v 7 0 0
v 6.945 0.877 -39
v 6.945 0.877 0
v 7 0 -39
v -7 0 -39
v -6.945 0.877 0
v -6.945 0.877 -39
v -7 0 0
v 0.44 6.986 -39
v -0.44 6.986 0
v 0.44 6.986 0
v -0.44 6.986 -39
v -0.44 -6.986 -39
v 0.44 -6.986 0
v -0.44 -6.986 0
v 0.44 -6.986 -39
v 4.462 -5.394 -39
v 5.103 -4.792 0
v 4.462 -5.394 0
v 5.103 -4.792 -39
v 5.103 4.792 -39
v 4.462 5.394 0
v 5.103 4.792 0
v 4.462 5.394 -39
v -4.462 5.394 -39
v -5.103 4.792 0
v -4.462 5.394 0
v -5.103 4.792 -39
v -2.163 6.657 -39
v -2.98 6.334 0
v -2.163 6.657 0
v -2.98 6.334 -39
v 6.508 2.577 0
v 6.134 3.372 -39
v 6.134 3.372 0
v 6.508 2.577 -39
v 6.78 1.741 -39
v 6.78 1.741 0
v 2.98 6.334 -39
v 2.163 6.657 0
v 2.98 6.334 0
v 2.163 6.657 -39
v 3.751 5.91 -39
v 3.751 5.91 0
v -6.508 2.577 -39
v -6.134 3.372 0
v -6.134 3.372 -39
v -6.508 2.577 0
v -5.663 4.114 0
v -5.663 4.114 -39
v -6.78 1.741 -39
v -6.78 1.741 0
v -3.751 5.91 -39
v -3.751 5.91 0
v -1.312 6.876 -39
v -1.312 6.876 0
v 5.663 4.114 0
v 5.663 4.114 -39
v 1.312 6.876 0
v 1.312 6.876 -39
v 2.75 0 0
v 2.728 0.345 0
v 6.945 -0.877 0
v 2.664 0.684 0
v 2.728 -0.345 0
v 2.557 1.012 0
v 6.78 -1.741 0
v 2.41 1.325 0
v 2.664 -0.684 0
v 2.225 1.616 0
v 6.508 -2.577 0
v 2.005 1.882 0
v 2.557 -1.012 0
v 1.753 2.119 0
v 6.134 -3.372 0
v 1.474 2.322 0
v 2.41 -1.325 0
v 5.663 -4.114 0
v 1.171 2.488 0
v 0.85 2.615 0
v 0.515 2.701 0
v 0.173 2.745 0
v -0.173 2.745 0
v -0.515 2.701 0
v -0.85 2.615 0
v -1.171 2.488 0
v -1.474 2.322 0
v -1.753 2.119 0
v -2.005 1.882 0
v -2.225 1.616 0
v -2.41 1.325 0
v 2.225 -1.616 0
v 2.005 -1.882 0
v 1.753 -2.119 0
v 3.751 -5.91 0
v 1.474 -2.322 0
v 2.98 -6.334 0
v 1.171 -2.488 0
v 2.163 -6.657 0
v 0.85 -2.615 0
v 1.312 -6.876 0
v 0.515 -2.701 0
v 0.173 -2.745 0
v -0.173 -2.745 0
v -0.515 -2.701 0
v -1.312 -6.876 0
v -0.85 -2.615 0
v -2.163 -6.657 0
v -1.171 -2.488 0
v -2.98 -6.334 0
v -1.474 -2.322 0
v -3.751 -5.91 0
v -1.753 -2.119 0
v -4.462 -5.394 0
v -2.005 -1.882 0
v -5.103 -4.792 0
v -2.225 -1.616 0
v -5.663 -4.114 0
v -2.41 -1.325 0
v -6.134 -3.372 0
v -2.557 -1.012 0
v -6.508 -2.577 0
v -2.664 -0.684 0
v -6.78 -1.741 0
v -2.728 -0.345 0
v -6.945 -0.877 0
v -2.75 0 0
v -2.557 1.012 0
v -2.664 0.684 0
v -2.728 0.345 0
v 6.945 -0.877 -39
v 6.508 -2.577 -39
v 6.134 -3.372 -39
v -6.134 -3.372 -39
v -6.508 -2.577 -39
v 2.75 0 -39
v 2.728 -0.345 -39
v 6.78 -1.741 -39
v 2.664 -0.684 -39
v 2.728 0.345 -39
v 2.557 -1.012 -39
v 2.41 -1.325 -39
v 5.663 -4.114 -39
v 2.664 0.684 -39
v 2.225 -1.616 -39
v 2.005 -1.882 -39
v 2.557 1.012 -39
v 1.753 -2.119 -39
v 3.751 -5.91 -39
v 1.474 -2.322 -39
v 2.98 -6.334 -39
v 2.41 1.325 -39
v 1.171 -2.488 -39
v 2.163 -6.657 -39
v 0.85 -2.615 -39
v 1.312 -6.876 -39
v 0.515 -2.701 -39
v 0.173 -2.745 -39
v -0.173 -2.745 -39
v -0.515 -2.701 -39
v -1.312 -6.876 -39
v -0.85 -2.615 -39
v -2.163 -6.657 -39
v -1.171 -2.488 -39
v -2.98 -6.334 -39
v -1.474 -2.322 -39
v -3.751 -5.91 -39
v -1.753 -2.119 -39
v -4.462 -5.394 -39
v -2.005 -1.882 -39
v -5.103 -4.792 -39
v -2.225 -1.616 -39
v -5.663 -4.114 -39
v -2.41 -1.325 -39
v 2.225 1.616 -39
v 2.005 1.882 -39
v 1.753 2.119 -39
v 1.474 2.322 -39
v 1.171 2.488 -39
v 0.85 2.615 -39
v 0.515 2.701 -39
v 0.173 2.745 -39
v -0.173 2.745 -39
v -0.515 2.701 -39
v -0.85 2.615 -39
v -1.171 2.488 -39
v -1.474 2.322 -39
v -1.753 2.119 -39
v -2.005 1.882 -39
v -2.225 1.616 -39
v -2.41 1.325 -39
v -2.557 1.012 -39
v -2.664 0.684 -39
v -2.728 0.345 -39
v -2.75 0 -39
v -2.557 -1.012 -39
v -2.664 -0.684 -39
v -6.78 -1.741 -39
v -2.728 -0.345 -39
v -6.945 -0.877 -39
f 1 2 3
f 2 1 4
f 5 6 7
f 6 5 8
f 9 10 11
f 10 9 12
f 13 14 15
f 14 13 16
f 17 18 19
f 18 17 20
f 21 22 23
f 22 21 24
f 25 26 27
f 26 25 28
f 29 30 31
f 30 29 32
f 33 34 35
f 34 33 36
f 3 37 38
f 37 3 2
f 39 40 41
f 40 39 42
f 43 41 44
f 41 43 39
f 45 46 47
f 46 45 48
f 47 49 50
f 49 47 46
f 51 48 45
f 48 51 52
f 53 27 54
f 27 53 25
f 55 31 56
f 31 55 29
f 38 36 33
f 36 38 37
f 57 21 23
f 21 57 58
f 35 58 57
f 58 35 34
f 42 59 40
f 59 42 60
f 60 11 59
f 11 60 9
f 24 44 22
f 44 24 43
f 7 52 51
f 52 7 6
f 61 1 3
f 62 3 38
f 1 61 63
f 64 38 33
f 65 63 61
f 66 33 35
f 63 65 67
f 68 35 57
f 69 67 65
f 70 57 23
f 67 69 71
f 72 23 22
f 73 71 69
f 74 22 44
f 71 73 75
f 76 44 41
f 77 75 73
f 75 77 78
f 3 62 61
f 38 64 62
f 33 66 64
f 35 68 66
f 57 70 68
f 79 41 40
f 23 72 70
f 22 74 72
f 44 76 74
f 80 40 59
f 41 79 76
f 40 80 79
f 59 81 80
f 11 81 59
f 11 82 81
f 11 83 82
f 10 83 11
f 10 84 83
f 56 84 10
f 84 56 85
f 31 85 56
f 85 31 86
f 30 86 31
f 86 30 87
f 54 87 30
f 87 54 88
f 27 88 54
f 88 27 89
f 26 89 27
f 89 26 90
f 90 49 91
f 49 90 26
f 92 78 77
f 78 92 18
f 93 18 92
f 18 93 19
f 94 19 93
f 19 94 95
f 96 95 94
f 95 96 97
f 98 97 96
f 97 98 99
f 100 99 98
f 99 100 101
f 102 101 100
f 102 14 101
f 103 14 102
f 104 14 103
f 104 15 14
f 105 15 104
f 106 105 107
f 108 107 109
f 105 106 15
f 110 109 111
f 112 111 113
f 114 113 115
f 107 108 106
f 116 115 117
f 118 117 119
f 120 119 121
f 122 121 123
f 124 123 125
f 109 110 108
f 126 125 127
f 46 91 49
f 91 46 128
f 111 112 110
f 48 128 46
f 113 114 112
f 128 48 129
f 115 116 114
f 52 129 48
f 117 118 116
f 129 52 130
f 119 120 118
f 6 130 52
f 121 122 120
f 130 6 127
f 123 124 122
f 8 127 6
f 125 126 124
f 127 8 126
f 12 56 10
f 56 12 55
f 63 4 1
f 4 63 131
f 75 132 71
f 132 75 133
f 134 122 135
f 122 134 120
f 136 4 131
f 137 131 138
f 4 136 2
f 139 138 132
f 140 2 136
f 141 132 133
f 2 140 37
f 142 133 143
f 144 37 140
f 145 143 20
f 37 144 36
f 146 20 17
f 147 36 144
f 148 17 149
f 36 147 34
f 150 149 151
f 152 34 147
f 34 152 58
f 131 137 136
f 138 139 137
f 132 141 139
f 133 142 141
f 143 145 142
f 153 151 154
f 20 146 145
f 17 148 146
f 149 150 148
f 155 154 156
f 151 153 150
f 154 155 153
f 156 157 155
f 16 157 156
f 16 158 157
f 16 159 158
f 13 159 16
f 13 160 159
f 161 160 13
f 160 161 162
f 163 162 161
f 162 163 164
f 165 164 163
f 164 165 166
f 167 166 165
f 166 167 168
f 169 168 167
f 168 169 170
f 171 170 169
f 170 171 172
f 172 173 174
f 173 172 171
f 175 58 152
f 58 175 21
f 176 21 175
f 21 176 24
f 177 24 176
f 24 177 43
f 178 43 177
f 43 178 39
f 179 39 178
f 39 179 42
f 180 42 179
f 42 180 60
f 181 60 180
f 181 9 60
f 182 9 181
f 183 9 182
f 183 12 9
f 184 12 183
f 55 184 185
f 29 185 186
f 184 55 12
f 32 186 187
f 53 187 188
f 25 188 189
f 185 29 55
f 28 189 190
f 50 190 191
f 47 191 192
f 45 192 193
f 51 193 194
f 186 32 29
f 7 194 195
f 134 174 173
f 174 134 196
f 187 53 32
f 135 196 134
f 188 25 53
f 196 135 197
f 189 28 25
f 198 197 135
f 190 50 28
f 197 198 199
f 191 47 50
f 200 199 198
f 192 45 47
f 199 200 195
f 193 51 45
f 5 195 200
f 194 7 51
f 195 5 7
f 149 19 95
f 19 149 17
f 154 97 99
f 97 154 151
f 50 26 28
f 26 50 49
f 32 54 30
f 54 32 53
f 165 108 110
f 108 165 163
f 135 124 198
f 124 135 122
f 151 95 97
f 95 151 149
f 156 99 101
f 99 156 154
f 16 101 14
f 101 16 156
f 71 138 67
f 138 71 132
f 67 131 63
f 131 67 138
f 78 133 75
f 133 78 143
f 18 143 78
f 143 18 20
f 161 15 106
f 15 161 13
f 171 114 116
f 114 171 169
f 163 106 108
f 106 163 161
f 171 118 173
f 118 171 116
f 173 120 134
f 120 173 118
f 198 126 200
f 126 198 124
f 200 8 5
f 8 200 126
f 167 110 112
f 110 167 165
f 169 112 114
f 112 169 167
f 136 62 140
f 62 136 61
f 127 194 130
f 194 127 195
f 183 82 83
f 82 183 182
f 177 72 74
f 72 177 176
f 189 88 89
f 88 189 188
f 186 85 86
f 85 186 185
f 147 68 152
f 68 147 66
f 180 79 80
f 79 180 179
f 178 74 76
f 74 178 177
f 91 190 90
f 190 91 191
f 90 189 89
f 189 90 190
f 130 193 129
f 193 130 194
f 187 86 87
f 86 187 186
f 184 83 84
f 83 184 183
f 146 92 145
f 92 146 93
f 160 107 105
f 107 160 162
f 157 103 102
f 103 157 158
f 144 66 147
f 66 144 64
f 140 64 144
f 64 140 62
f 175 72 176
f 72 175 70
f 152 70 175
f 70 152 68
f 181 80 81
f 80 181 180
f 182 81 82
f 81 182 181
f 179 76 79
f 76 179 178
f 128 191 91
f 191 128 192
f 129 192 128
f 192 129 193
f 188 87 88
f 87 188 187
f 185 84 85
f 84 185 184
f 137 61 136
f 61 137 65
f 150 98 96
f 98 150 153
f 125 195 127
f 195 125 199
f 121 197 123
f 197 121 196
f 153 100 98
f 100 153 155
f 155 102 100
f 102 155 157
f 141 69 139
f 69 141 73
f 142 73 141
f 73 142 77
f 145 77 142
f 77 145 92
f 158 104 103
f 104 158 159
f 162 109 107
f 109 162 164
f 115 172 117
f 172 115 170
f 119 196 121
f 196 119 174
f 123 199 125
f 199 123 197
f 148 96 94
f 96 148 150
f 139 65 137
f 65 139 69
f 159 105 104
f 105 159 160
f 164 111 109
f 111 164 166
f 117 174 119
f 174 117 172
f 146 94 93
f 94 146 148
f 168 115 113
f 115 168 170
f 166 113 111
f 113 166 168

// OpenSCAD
$fn = 50;


difference() {
	union() {
		translate(v = [0, 0, -39.0000000000]) {
			cylinder(h = 39, r = 7.0000000000);
		}
	}
	union() {
		#translate(v = [0, 0, -39]) {
			cylinder(h = 39, r = 2.7500000000);
		}
	}
}
